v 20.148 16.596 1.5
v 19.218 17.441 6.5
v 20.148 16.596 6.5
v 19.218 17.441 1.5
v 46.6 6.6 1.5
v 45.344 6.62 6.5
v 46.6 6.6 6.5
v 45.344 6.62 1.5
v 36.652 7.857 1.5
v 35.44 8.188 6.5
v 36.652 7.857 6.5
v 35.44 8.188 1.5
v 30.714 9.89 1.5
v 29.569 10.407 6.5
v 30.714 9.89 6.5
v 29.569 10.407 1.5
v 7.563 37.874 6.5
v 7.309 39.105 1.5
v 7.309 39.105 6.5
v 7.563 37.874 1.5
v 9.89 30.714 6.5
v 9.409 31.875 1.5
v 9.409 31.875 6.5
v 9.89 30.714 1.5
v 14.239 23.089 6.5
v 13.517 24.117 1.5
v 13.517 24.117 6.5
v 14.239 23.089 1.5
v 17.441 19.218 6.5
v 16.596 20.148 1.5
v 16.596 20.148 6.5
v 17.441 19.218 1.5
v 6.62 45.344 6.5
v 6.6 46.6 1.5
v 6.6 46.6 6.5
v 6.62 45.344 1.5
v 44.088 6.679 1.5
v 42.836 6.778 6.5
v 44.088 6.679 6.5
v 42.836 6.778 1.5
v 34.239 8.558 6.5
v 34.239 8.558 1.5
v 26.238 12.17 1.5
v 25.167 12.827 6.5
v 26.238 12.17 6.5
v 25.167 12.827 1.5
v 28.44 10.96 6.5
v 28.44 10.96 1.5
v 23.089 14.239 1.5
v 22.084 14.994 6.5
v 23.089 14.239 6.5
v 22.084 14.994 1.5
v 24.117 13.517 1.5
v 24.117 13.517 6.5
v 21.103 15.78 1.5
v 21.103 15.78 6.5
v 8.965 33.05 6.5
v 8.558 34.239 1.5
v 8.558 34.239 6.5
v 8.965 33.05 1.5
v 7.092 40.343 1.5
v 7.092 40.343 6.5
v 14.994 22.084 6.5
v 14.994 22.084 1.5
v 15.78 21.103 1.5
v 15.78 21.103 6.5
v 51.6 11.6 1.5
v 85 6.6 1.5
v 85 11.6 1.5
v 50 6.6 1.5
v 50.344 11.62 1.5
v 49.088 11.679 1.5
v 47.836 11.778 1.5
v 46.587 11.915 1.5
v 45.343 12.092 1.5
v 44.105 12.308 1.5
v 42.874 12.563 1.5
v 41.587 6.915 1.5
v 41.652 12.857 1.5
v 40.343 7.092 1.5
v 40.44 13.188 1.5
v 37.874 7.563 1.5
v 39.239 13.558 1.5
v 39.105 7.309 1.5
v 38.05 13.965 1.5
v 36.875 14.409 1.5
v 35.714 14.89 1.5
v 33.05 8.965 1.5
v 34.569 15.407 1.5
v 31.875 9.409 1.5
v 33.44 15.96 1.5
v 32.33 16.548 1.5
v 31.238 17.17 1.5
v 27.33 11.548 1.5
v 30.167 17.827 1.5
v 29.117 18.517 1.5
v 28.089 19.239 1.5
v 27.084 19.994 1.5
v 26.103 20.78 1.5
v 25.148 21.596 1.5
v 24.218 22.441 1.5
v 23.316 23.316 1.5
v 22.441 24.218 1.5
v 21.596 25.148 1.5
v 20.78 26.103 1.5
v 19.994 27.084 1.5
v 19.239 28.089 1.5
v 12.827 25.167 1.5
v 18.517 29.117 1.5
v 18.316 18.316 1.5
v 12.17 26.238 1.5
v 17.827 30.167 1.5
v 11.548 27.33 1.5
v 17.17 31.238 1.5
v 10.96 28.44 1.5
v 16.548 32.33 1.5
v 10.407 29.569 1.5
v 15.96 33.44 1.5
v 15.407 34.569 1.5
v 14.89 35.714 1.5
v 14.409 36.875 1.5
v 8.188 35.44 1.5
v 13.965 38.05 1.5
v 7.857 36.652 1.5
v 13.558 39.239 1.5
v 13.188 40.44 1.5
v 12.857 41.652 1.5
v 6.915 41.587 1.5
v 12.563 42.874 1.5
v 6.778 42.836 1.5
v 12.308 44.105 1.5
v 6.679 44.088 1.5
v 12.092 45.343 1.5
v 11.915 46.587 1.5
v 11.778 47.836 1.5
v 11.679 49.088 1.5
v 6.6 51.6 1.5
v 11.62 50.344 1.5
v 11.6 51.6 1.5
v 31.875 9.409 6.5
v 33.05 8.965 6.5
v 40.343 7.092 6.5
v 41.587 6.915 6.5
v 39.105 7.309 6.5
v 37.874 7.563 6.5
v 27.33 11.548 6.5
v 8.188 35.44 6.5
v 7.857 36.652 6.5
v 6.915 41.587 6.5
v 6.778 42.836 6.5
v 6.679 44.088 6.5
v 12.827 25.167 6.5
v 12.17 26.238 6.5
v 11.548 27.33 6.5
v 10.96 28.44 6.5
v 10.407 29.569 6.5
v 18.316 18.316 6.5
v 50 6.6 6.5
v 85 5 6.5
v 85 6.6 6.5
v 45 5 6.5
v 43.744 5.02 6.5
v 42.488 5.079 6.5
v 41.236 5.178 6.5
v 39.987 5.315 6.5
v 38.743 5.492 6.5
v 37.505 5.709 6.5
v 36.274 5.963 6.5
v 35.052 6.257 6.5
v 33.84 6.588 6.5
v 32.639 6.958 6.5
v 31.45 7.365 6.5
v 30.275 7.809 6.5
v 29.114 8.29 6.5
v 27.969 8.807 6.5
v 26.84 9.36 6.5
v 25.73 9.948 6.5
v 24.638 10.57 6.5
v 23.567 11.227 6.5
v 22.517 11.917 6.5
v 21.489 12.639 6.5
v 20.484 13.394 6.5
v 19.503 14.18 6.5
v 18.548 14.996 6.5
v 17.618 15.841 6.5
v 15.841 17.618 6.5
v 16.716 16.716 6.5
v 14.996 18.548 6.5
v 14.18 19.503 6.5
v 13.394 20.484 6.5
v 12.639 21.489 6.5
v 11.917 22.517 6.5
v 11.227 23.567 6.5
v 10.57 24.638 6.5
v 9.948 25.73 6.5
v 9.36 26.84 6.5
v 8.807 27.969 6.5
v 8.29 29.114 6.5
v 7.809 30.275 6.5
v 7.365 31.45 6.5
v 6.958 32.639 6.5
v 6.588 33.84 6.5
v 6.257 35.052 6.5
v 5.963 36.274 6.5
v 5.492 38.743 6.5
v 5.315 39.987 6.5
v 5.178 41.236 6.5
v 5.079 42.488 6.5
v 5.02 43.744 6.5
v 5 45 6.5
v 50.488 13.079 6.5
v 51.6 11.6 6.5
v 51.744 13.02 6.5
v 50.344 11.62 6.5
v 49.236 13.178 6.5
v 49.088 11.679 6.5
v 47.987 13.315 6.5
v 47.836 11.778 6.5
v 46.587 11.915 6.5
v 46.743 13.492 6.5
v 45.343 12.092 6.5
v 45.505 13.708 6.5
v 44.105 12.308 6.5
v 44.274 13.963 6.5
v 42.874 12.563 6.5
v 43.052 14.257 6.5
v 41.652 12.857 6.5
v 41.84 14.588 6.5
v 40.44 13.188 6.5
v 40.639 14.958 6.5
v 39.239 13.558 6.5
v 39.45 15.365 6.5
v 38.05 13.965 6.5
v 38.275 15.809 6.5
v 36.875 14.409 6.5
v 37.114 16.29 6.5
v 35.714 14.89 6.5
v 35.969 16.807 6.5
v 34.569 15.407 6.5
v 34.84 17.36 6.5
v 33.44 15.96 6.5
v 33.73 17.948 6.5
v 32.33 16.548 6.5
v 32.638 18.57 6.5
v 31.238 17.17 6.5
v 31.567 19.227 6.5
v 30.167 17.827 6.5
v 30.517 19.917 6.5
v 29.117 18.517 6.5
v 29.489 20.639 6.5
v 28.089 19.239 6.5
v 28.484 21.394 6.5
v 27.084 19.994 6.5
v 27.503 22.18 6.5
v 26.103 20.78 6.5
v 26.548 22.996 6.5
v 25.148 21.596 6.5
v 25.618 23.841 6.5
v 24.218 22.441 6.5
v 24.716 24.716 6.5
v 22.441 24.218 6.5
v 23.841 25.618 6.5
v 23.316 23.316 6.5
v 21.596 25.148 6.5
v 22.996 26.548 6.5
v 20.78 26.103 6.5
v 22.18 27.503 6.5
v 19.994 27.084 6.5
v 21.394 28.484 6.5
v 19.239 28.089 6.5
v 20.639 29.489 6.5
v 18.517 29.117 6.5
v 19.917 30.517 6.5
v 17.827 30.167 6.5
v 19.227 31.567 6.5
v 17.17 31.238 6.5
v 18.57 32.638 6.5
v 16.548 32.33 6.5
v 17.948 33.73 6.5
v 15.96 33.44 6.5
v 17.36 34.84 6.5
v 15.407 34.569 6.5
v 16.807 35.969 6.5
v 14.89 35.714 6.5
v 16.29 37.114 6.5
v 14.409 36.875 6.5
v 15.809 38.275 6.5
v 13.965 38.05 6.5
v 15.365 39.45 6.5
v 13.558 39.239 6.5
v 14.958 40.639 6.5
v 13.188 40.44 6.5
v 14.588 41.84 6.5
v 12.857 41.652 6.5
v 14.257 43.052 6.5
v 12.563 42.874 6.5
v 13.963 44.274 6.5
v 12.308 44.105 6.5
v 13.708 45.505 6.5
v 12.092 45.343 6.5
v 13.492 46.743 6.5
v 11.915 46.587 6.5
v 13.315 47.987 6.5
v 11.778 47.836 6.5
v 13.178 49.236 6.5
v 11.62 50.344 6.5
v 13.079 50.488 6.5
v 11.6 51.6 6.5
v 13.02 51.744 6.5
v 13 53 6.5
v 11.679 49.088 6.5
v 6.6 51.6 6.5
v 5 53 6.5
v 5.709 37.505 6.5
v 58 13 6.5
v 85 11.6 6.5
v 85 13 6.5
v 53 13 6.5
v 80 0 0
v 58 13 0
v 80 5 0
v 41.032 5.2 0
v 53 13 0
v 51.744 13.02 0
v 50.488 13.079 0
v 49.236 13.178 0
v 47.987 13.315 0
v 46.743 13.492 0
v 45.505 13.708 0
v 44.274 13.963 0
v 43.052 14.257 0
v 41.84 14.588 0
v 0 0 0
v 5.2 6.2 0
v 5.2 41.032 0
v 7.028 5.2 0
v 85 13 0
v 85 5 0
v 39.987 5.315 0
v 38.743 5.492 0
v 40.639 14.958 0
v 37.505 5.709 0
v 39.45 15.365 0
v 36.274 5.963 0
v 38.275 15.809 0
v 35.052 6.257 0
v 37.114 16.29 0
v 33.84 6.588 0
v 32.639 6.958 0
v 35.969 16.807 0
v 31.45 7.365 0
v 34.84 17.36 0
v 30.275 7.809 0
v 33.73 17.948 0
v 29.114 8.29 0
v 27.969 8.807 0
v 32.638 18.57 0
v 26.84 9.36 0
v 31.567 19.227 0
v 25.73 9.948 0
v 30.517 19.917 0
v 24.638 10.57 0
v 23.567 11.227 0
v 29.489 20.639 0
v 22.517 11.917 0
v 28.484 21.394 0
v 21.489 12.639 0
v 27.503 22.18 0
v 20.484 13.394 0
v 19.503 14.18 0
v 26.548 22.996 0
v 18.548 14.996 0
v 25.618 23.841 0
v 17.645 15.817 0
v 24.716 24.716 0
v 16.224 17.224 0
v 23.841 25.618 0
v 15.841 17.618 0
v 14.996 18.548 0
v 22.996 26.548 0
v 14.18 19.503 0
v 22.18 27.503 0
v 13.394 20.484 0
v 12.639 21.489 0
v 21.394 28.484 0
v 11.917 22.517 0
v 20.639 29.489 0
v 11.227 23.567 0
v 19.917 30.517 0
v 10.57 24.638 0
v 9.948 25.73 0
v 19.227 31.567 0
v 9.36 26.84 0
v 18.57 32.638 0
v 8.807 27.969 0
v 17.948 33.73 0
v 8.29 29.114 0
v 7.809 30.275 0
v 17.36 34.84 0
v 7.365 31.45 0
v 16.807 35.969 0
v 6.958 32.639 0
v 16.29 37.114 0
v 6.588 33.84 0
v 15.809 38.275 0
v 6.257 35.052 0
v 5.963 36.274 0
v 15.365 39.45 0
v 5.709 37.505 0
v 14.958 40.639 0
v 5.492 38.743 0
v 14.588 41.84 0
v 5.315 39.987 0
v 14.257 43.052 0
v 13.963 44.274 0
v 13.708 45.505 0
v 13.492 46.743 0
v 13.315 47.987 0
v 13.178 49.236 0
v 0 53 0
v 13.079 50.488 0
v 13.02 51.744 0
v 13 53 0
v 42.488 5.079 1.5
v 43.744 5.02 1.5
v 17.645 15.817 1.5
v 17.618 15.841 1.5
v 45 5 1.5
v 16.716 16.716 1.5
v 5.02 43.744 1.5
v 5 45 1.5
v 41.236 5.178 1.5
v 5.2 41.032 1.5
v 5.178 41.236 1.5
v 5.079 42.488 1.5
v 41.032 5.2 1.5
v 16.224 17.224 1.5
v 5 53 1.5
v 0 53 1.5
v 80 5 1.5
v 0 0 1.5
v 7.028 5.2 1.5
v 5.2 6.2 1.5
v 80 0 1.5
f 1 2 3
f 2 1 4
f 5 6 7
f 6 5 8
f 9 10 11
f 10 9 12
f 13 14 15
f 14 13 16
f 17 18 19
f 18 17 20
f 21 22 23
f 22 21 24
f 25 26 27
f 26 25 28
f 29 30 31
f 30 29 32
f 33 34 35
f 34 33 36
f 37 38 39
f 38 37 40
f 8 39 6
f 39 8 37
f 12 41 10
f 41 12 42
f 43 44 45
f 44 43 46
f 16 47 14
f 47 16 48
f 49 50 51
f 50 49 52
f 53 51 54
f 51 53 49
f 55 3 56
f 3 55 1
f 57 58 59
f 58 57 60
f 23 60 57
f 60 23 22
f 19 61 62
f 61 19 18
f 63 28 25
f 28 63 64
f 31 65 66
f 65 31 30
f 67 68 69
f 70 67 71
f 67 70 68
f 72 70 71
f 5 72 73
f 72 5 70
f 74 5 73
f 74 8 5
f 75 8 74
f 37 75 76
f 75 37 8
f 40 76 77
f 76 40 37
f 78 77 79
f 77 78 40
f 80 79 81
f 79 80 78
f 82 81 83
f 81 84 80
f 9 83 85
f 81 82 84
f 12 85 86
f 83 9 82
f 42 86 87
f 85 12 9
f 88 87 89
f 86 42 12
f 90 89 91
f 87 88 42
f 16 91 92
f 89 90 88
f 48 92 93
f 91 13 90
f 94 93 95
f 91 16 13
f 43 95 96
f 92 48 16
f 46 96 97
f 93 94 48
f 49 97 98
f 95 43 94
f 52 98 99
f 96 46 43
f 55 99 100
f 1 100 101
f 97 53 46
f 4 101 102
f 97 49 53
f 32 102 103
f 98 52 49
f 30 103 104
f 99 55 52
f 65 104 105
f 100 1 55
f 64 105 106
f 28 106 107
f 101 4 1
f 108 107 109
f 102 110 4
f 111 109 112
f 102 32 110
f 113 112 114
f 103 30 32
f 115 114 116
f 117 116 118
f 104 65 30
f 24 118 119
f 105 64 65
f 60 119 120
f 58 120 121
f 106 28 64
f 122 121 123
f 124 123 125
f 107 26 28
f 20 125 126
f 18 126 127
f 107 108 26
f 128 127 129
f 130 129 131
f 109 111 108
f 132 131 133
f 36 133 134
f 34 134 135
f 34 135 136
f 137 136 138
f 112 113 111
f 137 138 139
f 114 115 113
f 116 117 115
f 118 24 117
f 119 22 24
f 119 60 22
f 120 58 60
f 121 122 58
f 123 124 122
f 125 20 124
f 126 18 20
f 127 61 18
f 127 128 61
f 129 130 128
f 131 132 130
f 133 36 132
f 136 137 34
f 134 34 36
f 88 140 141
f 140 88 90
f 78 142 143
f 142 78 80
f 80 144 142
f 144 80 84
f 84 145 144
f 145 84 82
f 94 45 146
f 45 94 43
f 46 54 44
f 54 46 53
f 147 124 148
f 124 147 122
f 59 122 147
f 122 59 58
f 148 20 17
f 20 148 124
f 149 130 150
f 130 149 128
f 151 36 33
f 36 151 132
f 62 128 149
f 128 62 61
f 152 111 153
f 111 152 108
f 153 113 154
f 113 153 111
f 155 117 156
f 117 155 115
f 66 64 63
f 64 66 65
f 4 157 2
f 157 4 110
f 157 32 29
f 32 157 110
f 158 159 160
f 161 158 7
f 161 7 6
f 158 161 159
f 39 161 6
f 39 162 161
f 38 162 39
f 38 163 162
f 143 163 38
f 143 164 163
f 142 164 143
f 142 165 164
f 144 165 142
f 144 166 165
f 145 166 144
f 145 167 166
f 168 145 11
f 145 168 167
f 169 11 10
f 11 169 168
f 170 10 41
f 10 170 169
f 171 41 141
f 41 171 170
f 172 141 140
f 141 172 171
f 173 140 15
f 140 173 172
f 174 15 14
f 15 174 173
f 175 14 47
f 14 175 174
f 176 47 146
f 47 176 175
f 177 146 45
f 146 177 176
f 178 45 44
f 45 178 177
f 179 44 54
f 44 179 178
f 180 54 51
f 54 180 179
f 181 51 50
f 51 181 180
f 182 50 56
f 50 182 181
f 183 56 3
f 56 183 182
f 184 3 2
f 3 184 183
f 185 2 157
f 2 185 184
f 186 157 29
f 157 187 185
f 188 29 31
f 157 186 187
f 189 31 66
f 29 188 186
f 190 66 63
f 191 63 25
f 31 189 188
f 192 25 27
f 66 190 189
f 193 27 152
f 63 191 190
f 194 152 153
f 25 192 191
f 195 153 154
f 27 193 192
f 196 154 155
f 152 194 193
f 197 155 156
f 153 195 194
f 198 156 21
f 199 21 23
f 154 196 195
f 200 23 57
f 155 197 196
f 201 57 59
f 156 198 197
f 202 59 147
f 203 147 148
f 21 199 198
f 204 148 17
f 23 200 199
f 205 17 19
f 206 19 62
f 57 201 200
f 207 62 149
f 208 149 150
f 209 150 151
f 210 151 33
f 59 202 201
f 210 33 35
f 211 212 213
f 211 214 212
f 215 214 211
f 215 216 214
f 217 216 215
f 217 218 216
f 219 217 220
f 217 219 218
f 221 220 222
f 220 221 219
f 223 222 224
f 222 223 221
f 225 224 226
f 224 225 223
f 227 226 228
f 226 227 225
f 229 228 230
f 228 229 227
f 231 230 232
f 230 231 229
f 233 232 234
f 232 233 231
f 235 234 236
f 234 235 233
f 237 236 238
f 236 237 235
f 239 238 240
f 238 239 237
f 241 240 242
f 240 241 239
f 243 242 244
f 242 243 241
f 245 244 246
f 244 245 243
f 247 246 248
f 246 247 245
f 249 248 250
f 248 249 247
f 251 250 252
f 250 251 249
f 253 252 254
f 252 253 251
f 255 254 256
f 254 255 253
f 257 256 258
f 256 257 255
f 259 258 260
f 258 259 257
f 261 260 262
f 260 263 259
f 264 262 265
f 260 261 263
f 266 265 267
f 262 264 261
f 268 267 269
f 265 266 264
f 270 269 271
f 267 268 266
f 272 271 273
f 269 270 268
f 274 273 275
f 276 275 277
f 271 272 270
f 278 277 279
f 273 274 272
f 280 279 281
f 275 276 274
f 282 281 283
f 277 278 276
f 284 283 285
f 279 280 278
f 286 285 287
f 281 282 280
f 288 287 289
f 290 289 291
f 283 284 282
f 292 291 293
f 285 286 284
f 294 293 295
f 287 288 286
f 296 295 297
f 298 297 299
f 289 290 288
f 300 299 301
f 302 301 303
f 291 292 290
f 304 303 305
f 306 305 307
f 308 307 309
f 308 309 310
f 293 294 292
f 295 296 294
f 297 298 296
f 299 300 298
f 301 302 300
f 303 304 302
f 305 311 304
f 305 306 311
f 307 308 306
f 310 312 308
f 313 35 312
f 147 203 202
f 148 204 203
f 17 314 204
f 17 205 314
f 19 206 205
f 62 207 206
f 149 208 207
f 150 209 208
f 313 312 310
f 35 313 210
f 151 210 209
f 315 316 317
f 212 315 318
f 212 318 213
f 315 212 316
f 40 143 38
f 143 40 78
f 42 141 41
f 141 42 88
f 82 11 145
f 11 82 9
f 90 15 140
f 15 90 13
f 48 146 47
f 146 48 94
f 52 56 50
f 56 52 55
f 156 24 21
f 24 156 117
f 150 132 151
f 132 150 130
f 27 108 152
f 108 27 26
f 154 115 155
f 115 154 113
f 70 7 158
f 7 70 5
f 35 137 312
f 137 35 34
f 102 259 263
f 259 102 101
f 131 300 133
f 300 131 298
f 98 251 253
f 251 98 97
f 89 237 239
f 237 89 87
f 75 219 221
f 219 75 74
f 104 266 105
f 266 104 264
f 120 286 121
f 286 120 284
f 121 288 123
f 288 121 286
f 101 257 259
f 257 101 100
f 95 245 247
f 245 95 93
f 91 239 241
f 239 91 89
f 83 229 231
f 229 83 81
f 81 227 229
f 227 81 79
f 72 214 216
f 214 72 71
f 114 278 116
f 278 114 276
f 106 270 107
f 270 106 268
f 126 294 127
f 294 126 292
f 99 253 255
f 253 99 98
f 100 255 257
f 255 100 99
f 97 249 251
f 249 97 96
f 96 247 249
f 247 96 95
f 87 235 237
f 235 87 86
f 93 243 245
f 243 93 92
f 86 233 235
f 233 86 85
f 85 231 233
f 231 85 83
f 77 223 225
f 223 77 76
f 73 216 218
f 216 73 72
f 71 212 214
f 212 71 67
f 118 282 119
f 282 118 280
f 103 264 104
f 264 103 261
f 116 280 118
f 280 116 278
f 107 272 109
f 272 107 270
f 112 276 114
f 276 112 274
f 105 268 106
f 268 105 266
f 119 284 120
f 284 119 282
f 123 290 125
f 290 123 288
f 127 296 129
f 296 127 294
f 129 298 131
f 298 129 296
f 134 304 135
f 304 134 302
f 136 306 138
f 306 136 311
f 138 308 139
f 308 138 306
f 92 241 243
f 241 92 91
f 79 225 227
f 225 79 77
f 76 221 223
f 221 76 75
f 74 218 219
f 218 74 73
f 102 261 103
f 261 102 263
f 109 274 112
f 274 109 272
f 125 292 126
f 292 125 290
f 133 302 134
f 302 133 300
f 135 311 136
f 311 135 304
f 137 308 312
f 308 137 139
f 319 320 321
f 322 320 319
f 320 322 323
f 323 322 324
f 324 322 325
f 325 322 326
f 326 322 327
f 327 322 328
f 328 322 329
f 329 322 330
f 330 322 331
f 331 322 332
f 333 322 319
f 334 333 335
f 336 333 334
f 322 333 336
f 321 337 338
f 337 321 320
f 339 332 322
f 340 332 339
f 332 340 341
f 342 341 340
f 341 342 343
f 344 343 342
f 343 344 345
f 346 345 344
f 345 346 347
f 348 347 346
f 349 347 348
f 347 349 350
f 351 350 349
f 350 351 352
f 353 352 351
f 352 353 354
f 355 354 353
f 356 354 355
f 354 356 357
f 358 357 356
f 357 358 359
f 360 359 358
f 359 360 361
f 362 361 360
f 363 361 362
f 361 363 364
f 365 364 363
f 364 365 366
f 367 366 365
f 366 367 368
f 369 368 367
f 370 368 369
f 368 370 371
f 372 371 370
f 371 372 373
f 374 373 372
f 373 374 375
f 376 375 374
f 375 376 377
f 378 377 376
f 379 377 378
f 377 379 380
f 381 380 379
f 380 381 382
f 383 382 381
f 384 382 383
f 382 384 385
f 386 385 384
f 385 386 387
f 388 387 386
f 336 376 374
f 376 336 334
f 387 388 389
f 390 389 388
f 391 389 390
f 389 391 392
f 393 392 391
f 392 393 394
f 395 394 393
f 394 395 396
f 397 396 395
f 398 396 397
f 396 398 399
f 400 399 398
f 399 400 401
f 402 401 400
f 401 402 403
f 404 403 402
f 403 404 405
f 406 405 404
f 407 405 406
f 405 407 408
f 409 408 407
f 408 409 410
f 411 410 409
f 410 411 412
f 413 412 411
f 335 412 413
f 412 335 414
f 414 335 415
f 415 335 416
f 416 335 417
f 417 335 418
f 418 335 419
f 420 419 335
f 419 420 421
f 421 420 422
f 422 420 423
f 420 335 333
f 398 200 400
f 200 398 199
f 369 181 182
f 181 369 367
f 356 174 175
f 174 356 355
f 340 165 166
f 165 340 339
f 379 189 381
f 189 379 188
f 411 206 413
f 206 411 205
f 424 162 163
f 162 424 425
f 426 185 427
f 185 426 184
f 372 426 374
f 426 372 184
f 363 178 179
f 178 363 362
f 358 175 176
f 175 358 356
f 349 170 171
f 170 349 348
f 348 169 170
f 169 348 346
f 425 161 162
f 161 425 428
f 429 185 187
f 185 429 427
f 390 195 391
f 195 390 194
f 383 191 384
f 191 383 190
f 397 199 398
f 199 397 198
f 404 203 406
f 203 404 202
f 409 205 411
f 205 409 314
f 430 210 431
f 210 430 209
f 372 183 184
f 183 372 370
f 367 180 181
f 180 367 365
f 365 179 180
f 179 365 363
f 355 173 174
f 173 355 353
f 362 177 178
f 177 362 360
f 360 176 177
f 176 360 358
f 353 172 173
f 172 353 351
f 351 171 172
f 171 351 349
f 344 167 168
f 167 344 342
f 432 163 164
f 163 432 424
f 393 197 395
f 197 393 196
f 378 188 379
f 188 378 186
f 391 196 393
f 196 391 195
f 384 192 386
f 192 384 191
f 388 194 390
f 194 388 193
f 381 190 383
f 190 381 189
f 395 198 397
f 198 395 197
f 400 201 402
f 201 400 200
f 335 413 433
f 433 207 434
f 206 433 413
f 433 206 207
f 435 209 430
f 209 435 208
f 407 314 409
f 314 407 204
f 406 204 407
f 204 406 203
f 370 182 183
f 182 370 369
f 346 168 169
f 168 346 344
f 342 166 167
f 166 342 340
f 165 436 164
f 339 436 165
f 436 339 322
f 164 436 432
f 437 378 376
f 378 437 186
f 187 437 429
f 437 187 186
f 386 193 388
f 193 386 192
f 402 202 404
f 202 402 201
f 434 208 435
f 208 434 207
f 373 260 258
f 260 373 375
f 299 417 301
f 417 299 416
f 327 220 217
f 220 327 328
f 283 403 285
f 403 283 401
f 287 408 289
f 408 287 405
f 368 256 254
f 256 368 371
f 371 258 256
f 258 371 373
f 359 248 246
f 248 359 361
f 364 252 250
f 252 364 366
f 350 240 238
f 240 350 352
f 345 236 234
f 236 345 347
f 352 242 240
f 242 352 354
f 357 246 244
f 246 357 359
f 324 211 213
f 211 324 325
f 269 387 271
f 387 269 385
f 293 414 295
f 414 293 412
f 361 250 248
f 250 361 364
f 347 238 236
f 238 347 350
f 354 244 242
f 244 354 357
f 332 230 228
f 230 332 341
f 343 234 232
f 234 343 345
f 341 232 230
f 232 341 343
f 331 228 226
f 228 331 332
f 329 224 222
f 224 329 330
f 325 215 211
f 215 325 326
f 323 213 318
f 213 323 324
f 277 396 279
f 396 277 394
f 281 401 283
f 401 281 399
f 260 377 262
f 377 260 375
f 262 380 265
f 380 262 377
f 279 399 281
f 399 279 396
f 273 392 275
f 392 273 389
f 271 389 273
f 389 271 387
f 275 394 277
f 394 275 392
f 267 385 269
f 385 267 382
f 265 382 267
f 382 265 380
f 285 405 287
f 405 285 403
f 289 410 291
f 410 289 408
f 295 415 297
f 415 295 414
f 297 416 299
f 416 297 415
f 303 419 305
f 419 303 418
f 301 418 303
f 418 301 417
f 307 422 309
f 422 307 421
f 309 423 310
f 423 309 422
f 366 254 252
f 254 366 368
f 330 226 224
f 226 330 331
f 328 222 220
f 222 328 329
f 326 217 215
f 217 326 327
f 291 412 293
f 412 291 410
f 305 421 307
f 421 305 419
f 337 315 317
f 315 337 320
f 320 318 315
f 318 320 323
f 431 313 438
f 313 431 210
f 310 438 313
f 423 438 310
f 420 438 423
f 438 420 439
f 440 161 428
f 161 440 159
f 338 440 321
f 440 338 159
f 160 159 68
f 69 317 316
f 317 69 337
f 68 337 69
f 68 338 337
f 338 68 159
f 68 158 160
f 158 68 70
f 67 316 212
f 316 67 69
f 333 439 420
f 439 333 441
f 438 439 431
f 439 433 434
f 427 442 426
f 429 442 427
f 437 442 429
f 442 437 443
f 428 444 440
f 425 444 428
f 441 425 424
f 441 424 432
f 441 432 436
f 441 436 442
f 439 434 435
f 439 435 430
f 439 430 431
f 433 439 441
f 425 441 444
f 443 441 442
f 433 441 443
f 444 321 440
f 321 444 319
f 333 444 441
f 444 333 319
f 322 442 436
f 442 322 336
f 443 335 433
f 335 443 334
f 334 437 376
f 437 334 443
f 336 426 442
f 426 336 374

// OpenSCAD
base_thick = 1.5;
track_depth= 5;

union() {
    translate([5,5,0]) main();
    cube([80,5.2,base_thick]);
    cube([5.2,53,base_thick]);
    translate([2,3,0]) rotate([0,0,-45]) cube([2,21,base_thick]);
}

module main() {
    difference() {
        difference() {
            difference() {
                union() {
                    cube([12,48,base_thick+track_depth]);
                    translate([10,10,0]) cube([10,21,base_thick+track_depth]);
                    translate([10,10,0]) cube([21,10,base_thick+track_depth]);
                    cube([50,12,base_thick+track_depth]);
                    translate([50,0,0]) cube([30,8,base_thick+track_depth]);
                }
                translate([28,18,0]) cube([4,4,base_thick+track_depth]);
                translate([18,28,0]) cube([4,4,base_thick+track_depth]);
                translate([45,1.6,base_thick]) cube([35,5,track_depth]);
                translate([20,20,0]) cube([10,10,base_thick+track_depth]); 
                translate([40,40,0]) cube([30,90,base_thick+track_depth]);
            }
            translate([1.6,1.6,base_thick]) track(track_depth);
        }
        rotate([0,0,-45]) translate([-30,-30,0]) cube([40,40,base_thick+track_depth]);
        translate([-5,-5,0]) track(base_thick+track_depth);
        rotate([0,0,45]) translate([-15,-15,0]) cube(30,30,base_thick+track_depth);
        translate([8,8,0]) track(base_thick+track_depth);
    //    translate([30,30,0]) track(base_thick+track_depth);    
    }
}

module track(thick) {
    union() {
        difference() {
            inside_track(thick);
            outside_track(thick);
        }    
//        translate([52,0,0]) cube([50,10,thick]);
    }
}

module inside_track(thick) {
    union() {
        translate([40,40,0]) cylinder(thick, 40,40,$fn=200);
        translate([40,0,0]) cube([50,50,thick]);
        translate([0,40,0]) cube([50,50,thick]);
    }    
}

module outside_track(thick) {
    union() {
        translate([45,45,0]) cylinder(thick, 40,40,$fn=200);
        translate([45,0,0]) cube([50,50,thick]);
        translate([0,45,0]) cube([50,50,thick]);      
    }   
}
